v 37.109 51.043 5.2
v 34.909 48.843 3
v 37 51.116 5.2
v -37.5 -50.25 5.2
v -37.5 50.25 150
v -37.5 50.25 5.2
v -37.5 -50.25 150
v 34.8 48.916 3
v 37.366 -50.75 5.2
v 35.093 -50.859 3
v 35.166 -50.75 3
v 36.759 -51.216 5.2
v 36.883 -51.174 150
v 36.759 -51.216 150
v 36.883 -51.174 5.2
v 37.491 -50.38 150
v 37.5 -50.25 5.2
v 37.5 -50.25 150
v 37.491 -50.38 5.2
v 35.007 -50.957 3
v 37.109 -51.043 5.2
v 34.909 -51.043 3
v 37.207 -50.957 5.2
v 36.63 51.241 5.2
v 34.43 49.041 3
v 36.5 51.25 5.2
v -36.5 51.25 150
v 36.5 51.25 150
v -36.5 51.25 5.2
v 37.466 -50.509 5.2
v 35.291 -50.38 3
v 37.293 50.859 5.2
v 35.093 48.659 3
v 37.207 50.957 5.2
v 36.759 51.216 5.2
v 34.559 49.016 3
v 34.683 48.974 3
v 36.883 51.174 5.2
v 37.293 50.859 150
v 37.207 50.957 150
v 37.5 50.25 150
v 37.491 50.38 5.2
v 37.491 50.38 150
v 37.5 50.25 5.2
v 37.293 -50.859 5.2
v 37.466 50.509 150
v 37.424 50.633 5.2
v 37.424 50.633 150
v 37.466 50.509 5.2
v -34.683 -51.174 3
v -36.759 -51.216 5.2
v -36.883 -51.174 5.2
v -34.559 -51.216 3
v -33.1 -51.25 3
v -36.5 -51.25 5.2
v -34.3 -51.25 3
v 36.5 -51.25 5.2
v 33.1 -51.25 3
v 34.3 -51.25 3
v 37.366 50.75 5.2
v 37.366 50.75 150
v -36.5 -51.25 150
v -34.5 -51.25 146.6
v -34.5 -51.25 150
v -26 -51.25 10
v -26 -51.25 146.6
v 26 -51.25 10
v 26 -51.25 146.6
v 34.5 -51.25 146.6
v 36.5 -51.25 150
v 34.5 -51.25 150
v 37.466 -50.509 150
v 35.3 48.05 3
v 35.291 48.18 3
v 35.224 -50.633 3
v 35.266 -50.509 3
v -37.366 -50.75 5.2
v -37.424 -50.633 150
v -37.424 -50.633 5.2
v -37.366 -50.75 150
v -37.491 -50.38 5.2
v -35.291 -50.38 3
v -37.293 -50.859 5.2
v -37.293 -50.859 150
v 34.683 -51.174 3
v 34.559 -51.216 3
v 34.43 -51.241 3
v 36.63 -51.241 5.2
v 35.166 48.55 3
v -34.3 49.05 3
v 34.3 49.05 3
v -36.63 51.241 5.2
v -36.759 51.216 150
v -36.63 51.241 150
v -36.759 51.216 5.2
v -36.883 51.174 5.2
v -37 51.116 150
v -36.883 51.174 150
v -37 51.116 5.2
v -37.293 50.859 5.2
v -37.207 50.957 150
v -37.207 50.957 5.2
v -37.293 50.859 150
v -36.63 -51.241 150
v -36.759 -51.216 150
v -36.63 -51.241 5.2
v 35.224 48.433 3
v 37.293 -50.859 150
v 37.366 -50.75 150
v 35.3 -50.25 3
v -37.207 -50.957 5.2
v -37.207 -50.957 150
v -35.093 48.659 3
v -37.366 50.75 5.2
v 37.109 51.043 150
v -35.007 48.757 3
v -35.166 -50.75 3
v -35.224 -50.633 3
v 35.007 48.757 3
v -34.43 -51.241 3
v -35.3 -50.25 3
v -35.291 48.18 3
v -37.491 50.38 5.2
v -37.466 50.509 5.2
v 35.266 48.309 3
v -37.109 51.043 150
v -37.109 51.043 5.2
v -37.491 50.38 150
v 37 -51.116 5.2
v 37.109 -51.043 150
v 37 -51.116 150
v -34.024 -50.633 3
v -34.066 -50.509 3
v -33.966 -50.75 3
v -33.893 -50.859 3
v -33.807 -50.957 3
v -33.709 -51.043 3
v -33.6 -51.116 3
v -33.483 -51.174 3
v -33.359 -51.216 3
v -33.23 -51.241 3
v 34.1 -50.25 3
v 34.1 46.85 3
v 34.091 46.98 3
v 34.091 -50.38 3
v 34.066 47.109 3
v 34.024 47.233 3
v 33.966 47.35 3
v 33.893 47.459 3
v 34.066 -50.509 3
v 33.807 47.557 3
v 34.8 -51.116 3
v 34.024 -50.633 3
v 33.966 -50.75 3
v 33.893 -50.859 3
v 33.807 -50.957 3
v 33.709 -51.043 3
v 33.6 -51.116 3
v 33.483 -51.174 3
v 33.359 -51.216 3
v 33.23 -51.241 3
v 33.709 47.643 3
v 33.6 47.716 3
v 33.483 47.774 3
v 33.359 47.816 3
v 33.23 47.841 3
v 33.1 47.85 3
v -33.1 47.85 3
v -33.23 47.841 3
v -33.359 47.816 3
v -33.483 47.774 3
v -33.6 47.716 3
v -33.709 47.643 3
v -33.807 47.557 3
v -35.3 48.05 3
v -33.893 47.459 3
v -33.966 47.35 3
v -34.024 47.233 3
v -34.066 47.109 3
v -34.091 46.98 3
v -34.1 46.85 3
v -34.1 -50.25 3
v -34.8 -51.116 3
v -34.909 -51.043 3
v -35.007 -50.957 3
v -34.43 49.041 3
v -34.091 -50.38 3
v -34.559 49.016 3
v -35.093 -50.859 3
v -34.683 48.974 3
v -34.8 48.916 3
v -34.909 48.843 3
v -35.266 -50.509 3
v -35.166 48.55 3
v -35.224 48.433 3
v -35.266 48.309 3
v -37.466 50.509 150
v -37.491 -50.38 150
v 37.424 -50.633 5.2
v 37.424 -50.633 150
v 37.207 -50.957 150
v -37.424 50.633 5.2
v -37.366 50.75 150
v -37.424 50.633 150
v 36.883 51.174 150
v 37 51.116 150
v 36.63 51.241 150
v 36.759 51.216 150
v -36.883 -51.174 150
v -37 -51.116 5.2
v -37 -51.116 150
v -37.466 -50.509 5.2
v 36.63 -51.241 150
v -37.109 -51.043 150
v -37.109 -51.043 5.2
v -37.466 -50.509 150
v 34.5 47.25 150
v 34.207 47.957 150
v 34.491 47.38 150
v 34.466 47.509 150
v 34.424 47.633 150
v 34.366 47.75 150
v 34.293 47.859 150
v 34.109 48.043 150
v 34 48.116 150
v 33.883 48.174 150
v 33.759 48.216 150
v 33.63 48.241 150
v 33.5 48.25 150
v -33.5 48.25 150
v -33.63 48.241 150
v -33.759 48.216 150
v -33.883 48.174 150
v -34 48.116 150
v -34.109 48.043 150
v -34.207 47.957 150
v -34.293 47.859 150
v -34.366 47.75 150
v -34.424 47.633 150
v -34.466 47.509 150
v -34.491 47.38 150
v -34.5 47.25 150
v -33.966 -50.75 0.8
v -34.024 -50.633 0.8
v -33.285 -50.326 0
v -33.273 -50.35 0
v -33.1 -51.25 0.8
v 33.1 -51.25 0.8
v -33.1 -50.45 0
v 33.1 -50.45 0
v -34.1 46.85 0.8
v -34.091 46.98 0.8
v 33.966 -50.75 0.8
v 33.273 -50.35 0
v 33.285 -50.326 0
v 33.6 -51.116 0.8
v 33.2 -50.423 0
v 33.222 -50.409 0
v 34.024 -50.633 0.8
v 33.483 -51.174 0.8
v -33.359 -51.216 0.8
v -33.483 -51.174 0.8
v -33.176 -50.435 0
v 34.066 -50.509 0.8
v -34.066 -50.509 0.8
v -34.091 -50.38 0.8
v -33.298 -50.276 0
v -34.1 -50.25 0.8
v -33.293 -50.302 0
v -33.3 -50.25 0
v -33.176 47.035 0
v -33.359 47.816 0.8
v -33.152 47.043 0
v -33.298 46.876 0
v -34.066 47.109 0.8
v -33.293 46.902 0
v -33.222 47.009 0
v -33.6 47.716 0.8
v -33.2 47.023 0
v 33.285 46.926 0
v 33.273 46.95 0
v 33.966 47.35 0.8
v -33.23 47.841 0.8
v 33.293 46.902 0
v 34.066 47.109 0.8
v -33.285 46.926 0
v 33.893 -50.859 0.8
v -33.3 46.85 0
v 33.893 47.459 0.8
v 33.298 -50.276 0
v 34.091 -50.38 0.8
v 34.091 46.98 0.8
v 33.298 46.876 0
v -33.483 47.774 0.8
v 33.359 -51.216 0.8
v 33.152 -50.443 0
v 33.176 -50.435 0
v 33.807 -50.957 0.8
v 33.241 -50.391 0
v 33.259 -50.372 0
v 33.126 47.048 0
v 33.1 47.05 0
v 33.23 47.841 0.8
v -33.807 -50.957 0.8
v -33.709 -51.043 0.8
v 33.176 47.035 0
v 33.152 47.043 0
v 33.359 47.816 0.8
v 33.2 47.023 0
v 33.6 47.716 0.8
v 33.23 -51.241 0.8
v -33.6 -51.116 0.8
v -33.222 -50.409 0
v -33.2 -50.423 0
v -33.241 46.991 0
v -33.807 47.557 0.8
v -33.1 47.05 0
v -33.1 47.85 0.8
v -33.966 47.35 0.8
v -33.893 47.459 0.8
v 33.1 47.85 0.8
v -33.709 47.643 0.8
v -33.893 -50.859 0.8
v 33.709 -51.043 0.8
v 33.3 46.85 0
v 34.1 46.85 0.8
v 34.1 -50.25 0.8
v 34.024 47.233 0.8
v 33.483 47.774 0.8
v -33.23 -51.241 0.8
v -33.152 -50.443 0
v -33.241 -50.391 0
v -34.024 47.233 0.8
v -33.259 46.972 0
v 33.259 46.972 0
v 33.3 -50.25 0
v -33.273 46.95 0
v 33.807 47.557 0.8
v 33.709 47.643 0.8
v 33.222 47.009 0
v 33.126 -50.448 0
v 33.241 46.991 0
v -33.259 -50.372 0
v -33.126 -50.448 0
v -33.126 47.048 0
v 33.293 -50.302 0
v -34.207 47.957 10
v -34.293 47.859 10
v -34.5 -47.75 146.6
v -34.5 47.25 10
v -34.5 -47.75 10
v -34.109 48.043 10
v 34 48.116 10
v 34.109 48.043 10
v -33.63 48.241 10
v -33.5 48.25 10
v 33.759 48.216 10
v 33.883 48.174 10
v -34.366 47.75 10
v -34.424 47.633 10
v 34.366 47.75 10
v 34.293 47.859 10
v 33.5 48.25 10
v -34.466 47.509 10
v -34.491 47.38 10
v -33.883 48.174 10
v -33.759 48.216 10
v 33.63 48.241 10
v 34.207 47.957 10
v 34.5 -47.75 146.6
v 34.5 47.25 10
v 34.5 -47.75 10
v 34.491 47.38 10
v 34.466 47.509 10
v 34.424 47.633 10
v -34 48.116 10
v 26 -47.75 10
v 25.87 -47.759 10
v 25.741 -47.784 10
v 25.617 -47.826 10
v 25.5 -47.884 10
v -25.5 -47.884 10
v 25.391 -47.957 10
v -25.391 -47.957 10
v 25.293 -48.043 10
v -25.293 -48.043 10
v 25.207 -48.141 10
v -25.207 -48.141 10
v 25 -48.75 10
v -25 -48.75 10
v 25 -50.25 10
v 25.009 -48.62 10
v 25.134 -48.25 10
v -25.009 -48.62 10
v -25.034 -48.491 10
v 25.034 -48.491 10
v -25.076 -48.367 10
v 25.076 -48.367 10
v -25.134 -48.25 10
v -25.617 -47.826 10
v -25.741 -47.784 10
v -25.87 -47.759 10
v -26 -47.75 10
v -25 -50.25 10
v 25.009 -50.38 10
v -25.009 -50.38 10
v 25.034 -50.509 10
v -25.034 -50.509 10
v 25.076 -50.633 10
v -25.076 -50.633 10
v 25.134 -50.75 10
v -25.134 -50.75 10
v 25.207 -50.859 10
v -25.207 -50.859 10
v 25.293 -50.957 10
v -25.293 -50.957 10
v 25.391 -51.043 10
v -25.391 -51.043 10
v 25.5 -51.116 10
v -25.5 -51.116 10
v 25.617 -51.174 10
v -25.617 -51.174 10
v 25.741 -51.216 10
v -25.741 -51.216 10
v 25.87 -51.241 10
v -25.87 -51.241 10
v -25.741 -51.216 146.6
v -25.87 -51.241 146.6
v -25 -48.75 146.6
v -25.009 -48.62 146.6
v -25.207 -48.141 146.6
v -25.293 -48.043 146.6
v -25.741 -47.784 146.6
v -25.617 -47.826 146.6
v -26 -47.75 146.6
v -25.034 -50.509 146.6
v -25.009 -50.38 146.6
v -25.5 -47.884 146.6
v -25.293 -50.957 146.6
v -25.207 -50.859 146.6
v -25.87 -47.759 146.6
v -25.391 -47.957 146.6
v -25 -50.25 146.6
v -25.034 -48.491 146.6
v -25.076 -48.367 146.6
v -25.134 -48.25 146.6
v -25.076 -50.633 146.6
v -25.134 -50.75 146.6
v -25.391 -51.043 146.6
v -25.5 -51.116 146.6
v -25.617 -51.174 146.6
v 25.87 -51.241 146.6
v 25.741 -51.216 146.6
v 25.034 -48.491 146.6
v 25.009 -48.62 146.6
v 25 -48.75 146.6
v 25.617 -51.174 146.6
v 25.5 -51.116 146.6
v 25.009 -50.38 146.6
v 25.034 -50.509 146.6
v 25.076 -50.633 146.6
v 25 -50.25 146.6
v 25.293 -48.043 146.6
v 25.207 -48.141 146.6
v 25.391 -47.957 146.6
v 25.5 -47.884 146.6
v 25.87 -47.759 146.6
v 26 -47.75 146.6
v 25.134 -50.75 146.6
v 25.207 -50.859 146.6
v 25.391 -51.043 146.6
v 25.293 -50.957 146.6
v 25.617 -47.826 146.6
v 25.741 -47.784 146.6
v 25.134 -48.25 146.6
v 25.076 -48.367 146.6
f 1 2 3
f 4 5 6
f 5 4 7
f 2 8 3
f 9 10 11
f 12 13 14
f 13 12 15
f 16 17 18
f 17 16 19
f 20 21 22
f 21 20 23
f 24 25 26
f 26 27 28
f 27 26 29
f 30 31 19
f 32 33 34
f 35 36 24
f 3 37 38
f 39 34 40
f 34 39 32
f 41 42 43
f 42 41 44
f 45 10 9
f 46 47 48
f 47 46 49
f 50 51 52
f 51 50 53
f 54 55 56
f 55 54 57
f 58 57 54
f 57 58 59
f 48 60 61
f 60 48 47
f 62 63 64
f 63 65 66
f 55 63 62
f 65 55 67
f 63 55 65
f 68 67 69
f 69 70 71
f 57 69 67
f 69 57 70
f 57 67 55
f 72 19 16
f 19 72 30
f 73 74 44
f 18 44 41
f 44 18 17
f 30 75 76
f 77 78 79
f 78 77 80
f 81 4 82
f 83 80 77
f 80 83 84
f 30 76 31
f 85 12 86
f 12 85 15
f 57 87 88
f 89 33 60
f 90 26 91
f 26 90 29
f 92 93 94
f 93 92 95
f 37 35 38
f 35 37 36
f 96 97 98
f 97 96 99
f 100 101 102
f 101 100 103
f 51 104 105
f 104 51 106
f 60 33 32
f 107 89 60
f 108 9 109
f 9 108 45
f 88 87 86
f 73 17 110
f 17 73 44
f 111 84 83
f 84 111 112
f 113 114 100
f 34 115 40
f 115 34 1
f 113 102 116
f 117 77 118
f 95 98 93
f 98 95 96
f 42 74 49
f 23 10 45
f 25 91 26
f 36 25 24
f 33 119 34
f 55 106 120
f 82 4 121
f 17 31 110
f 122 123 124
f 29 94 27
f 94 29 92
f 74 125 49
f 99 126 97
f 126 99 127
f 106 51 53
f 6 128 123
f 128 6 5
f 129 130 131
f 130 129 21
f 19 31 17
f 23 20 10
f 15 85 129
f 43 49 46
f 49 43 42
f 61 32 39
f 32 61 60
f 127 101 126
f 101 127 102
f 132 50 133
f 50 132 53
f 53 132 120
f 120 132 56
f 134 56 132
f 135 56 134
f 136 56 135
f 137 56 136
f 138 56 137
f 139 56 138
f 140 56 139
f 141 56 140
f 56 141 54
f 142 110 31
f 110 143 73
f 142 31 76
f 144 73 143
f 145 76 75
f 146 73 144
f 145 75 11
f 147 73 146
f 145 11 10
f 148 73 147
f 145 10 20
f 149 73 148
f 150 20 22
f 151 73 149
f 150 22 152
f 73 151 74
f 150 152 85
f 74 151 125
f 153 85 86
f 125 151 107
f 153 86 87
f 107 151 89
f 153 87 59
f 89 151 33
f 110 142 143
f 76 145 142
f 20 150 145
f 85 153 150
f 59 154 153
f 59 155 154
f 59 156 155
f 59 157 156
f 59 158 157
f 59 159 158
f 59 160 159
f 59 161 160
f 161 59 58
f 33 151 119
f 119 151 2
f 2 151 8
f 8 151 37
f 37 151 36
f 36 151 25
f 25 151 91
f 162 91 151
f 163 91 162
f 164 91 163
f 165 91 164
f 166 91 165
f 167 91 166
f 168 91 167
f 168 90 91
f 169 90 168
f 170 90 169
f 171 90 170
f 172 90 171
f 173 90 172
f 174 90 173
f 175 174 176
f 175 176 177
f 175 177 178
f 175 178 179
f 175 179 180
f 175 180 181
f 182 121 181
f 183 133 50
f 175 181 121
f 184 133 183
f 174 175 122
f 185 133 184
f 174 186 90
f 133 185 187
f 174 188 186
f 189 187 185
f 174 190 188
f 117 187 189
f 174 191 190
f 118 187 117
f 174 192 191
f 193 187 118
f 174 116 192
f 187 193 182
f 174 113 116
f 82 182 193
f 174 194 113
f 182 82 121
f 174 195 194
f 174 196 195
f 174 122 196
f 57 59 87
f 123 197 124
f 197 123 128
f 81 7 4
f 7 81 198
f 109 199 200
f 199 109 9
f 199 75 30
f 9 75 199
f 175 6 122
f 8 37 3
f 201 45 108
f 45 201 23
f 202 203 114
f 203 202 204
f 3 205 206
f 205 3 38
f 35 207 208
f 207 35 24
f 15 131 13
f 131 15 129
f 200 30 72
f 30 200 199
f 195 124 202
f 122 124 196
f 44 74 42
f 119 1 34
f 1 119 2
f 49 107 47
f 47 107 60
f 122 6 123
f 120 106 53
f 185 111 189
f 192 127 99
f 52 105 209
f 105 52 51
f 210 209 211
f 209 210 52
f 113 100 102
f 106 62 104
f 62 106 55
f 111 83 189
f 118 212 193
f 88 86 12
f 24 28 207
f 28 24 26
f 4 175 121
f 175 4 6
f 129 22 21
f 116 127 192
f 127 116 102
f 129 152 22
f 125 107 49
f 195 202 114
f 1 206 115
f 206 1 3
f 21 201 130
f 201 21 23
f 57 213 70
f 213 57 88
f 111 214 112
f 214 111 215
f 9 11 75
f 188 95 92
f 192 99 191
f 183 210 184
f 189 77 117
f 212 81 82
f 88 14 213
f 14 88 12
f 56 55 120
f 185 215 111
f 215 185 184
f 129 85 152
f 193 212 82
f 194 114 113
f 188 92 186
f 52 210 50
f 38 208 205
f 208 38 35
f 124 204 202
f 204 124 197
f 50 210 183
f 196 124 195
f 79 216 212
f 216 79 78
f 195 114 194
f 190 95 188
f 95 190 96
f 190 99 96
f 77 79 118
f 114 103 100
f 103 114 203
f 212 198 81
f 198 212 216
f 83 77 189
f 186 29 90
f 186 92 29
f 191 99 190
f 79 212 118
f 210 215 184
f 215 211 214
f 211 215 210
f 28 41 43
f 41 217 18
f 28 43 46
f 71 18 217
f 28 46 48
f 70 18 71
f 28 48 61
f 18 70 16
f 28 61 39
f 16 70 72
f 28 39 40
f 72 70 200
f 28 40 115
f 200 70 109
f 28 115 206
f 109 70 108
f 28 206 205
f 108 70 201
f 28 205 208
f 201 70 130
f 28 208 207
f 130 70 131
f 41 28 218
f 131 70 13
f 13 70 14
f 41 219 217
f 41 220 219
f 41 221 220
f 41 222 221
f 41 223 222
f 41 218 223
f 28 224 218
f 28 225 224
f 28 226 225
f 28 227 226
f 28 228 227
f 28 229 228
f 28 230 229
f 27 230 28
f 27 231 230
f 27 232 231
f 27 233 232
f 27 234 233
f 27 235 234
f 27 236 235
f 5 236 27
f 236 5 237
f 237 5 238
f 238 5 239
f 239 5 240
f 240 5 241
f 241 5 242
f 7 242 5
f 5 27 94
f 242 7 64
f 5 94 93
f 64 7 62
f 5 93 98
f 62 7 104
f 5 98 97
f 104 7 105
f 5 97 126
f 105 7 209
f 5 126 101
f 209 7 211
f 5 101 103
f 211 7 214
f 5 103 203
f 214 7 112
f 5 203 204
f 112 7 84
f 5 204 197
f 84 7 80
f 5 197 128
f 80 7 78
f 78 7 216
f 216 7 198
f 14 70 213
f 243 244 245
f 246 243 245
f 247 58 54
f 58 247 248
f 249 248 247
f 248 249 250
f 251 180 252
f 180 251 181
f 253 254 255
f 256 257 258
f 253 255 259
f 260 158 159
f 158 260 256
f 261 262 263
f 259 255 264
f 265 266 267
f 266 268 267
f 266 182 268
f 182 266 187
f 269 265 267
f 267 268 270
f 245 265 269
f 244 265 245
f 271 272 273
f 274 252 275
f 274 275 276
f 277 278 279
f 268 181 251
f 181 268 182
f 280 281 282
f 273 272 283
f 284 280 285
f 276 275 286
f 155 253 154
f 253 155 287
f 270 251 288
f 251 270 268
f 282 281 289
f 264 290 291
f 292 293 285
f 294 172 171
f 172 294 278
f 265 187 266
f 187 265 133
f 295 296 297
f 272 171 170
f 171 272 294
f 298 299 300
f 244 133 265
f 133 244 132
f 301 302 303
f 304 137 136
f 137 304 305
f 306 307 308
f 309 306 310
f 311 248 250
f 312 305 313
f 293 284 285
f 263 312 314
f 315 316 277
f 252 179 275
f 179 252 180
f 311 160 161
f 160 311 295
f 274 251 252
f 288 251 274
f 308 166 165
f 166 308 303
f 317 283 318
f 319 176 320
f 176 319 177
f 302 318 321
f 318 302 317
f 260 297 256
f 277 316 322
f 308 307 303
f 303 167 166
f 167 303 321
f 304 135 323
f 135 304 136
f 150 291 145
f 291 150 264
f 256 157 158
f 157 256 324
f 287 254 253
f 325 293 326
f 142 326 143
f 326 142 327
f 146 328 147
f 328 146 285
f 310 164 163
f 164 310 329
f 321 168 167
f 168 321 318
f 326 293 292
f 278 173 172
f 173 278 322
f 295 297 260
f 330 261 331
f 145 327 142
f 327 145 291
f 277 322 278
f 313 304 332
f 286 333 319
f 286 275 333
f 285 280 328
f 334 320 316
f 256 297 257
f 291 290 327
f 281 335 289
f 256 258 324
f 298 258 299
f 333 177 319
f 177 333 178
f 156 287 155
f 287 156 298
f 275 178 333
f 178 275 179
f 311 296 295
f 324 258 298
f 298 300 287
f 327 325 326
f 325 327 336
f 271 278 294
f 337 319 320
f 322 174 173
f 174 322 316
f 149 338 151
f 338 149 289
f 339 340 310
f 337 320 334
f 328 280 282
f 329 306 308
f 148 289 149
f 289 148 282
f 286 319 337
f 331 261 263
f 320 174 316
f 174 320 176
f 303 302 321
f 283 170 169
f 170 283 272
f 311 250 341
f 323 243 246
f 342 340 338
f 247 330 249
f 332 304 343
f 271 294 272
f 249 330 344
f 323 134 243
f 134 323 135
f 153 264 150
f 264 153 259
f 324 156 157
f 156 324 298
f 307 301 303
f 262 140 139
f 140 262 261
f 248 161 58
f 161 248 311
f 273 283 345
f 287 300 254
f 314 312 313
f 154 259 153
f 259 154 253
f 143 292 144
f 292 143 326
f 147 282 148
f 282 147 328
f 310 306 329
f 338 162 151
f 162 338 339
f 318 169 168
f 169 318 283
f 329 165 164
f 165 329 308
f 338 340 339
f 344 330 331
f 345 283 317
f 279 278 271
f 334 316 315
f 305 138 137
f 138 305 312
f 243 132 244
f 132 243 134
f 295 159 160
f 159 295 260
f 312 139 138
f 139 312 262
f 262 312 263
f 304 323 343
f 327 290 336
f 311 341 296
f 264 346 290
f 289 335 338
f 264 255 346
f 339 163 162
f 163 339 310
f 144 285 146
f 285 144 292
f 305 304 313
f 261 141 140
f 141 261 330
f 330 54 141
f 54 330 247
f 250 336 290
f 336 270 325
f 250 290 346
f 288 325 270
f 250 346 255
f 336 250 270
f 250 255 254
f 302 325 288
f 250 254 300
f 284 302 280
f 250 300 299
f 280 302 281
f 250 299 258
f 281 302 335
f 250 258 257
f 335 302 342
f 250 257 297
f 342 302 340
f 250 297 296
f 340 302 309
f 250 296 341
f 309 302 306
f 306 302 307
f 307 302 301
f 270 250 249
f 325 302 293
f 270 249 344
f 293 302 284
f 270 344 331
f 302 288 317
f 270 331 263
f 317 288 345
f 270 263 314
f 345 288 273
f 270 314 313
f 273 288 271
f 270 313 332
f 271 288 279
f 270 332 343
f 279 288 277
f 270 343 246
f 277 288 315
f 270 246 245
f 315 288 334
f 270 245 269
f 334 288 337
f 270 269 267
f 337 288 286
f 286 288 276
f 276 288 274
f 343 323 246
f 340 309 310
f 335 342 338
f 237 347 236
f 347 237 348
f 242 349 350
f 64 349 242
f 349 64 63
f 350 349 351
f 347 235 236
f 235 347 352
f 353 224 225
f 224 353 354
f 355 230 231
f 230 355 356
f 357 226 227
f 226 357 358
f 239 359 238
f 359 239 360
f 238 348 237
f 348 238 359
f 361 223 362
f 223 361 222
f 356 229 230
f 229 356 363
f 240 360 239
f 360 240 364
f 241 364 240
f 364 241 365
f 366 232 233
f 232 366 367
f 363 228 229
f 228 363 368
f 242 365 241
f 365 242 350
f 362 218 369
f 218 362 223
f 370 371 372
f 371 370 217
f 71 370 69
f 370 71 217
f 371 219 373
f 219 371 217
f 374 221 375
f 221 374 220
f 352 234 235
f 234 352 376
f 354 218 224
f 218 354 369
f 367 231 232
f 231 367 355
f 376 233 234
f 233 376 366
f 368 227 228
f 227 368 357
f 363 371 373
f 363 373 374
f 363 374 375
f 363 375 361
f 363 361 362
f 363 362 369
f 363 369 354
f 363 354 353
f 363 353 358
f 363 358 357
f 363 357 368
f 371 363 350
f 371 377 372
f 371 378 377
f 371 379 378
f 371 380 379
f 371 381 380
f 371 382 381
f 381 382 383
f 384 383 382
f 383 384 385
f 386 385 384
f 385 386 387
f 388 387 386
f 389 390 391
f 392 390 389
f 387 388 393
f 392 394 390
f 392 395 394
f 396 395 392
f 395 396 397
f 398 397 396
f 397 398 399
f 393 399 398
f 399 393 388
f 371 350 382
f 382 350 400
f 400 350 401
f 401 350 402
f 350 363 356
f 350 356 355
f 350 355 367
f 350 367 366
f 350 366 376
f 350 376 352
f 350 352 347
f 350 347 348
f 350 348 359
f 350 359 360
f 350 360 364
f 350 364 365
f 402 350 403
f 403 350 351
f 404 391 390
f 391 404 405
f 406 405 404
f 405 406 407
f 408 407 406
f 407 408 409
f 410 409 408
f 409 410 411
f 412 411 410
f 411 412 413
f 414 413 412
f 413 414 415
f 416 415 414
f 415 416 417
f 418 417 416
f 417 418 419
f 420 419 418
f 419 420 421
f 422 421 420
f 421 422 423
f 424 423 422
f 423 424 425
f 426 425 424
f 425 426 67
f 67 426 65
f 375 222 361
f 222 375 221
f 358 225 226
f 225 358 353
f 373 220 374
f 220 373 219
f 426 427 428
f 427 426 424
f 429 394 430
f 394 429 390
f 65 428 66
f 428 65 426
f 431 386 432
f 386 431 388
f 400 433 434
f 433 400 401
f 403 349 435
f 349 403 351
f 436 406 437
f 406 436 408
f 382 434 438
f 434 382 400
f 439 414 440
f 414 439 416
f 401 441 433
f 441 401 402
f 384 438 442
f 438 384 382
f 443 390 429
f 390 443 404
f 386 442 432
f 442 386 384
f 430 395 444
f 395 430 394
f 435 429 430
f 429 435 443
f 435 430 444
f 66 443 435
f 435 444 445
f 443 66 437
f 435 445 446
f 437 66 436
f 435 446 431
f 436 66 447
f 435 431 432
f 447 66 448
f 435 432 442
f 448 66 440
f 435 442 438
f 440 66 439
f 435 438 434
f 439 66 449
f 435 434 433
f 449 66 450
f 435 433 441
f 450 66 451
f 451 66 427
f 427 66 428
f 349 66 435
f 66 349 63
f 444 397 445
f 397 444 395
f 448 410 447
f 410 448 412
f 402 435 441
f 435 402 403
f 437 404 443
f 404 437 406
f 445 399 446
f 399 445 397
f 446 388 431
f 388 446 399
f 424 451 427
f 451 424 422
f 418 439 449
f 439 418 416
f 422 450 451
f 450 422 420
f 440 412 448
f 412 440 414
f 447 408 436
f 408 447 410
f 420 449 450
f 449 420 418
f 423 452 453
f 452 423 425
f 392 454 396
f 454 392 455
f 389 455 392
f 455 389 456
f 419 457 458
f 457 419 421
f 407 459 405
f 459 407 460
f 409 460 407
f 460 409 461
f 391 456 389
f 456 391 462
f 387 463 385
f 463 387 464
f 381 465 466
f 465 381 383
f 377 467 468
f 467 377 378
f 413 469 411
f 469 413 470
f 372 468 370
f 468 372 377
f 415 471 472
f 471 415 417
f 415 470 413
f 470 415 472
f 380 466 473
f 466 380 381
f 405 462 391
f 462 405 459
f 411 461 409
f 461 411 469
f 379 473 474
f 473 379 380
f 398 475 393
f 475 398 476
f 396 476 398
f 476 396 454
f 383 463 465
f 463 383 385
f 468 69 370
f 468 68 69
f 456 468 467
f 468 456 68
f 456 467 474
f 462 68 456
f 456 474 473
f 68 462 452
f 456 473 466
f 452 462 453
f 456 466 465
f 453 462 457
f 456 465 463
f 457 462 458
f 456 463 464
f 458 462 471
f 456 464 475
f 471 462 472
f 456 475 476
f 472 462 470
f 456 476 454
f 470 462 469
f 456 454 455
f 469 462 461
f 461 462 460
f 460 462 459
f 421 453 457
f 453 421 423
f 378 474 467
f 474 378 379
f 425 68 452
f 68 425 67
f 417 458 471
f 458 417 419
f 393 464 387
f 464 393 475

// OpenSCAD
// sleeve-tower-01.scad
//
// TORRE de penny sleeves DEITADOS: bandeja aberta em cima, 75 x 102.5 x 150mm,
// com três paredes maciças (duas laterais + fundo), a frente aberta num SULCO
// vertical que vai do piso ao topo e duas ABAS EM L nos cantos da frente que
// seguram a pilha. Piso de 10mm que é lastro e, embaixo dele, um RESSALTO de
// empilhamento — a torre de cima senta na boca da de baixo.
//
// COMO SE MANUSEIA (é uma torre de bancada, não uma caixa de deck):
//   1. A torre fica DE PÉ na mesa, com o sulco virado pra você. O sleeve entra
//      DEITADO (os 66 no eixo X, os 91 no eixo Y) e a pilha cresce em Z: são
//      140mm de curso, do piso (z=10) até a boca (z=150).
//   2. ABASTECER: pela BOCA, que é aberta e livre nos 69.0 x 99.5 inteiros —
//      nada estrangula a entrada, você despeja o maço de sleeves de cima.
//   3. TIRAR: pelo SULCO da frente. Você enfia dois dedos nos 50mm de vão, na
//      altura do topo da pilha, pinça o sleeve e puxa pra frente. O sleeve tem
//      66.7 de largura e o sulco tem 50, então ele NÃO sai reto: ele passa
//      arqueando entre as duas abas — que é exatamente o que impede a pilha
//      inteira de escorregar pra fora quando você puxa um. Ver a nota
//      "SLEEVE VAZIO x CARTA ENSLEEVADA" mais abaixo, porque isso muda tudo.
//   4. EMPILHAR: a torre de cima desce na boca da de baixo. O ressalto de 3mm
//      entra na boca com 0.4/lado e a torre assenta no aro. Sulco com sulco:
//      não foi desenhada chaveta nenhuma, mas o ressalto é assimétrico em Y
//      (rente na frente, recuado 0.4 atrás) e isso já trava — virada 180 graus
//      ela bate no fundo e fica boiando 3mm alta, óbvio na mão. Duas empilhadas
//      dão 297mm de coluna, não 300: a de cima afunda os 3mm do ressalto.
//
// DE ONDE VEIO, E POR QUE ESTE ARQUIVO NÃO É O ORIGINAL
// Referência de geometria: `../../organizadores_tcg/PennySleeveHolderStacking_V2.3mf`
// ("Stackable Penny Sleeve Holder", Sazabi, MakerWorld, MakerWorld Exclusive
// License — arquivo de TERCEIRO, NÃO redistribuível; é por essa família de
// licenças que o repo virou privado em 2026-08-09). Este .scad é reconstrução
// paramétrica própria: nada da malha foi copiado, só medidas de engenharia
// reversa. Medido na malha da variante Stackable (3D/Objects/object_1.model,
// 296 vértices, origem no centro do bbox):
//   envelope 73.00 x 101.50 x 45.00  (x ±36.50, y ±50.75, z ±22.50)
//   parede 2.00 nas laterais (face interna x ±34.50 -> vão 69.00)
//   parede 2.00 no fundo (face interna y = 48.75 -> vão 99.50)
//   piso: topo da cavidade em z = 10.00 (níveis de z: 0, 3, 10, ...)
//   ressalto de empilhamento z 0..3, contorno 68.6 x 99.3 (0.2/lado de folga)
//   abas em L: y -50.75..-47.25 (3.5 de profundidade), aresta interna em
//     x = ±25.00 na FACE DA FRENTE, abrindo em filete até ±28.83 no fundo da
//     aba -> o vão do sulco na cara da peça é 50.00 = 68.5% dos 73.0
//   quinas verticais externas e arestas do sulco arredondadas em r ≈ 1.0
//
// O QUE MUDA NESTA VARIANTE (tudo decidido com o usuário)
//   1. ALTURA 45 -> 150. O piso segue com 10.0, então a cavidade vai de 35 pra
//      140mm de curso de pilha. Piso pesado é bem-vindo: é o lastro que segura
//      uma peça de 150mm de pé (ver ESTABILIDADE).
//   2. PAREDE 2.0 -> 3.0, CRESCENDO PRA FORA. A 150mm de altura uma parede de
//      2mm empena e é mole. Os 3mm saem do envelope externo (73.0 -> 75.0 em X
//      e 101.5 -> 102.5 em Y), NUNCA da cavidade: com 3mm pra dentro o vão
//      cairia pra 67.0 e um penny sleeve de ~66.7 não entraria mais.
//   3. PAREDE MACIÇA — PEDIDO LITERAL DO USUÁRIO. Sem colmeia, sem furo, sem
//      baixo relevo. Isto SOBREPÕE a regra 5 (identidade visual hexagonal) do
//      CLAUDE.md, de propósito e por escrito, não é esquecimento. O preço está
//      medido e declarado embaixo, em MATERIAL E TEMPO.
//   4. SULCO = 2/3 DA LARGURA, do piso ao topo, sem travessa nenhuma. Com o
//      externo de 75.0 dá 50.0mm exatos — que por coincidência é o mesmo vão
//      que a referência tem na cara da peça.
//   5. ABAS MAIORES: retorno de 9.5mm pra dentro da face interna da lateral,
//      contra os 7.25 da referência. Não é número escolhido, é consequência do
//      item 4: sulco de 50 (x ±25) com a face interna da lateral em x ±34.5 dá
//      34.5 - 25.0 = 9.5 de retorno. Mais aba = pilha mais presa.
//   6. FOLGA DO RESSALTO 0.2 -> 0.4/LADO, com chanfro de entrada de 0.8. Regra
//      6 do CLAUDE.md, aprendida no deckbox-02 impresso, que TRAVOU no meio do
//      curso: peça alta impressa em pé faz barriga pra dentro, a boca sai
//      subdimensionada, o sólido sai superdimensionado e ainda tem pé de
//      elefante. Aos 150mm isso é pior que aos 45 da referência.
//   7. ABA CORTADA NO TOPO. O retorno da aba em L para 3.4mm abaixo da boca
//      (z=146.6) — ver ABA CORTADA NO TOPO, é o que deixa o ressalto ser um
//      prisma limpo e mata o pior balanço da peça.
//
// ATENÇÃO — A MEDIDA DO SLEEVE NÃO É DE RÉGUA
// A cavidade 69.0 x 99.5 NÃO foi medida no sleeve do usuário: ela veio da
// malha da referência, que é peça impressa e aprovada por terceiros. É a mesma
// ressalva que o README de organizadores_tcg faz pro penny-holder-01. Vale
// como ponto de partida (peça impressa que funciona > catálogo), mas o dia em
// que o sleeve for medido com régua, a correção é um include de 3 linhas:
//   cav_w_override = <largura + 2>; cav_d_override = <altura + 2>;
//   include <sleeve-tower-01.scad>
// e o modelo inteiro se refaz — externo, sulco, abas e ressalto são todos
// derivados desses dois números.
//
// SLEEVE VAZIO x CARTA ENSLEEVADA (a cinemática de tirar, com número)
// O sulco tem 50.0mm e o conteúdo tem ~66.7 de largura: 16.7mm a menos, 8.35
// de mordida em cada aba. Isso quer dizer que:
//   - SLEEVE VAZIO (filme mole): sai pelo sulco arqueando, sem esforço. É pra
//     isso que a peça existe e é o que a referência faz.
//   - CARTA JÁ ENSLEEVADA (rígida, a carta não dobra): NÃO passa pelo sulco.
//     Sai pela BOCA, por cima — que é aberta e livre. O sulco vira janela de
//     ver o nível da pilha e de empurrar a pilha pra cima com o dedo.
// Nenhuma das duas é defeito, mas é bom saber qual das duas você comprou antes
// de encher a torre. Quem quiser a carta enseleevada saindo pela frente tem que
// abrir o sulco pra ~70 (open_frac_override = 0.93) e aí perde a aba.
//
// ABA CORTADA NO TOPO (por que o retorno para em z=146.6)
// O ressalto da torre de cima ocupa os 3mm de cima da cavidade da torre de
// baixo. Se a aba em L subisse até a boca, o ressalto teria que ser recortado
// em volta dela — e esse recorte deixaria, na cara da frente, dois trechos de
// 12.9 x 3.9mm de laje horizontal boiando no ar em z=3 (é o que a referência
// faz; o perfil dela vem com suporte LIGADO). Cortar 3.4mm do RETORNO da aba
// (só do retorno: a parede lateral sobe inteira até 150) resolve os dois lados:
//   - o ressalto vira um prisma retangular limpo, rente à frente, sem recorte;
//   - o único balanço que sobra na peça é o degrau de 1.2mm do assento.
// O que se perde: os 3.4mm de cima da pilha ficam sem aba na frente. Não custa
// nada — com uma torre empilhada em cima, esses 3mm estão ocupados pelo
// ressalto dela, e sem torre em cima a pilha nunca chega rente à boca.
//
// ASSENTO DO EMPILHAMENTO — O PROBLEMA DA SAIA, E COMO FOI RESOLVIDO
// Parede 3.0 + folga 0.4 = 3.4mm de saia em volta do ressalto, a 3mm da mesa
// (na referência eram 2.2). 3.4mm de laje horizontal saindo do nada é balanço
// puro: a camada de z=3 avançaria 3.4mm de uma vez sobre o vazio e a superfície
// que pende é justamente a que faz o assento do empilhamento. Foram avaliadas
// três saídas:
//   (a) degrau reto de 3.4 ....... assento perfeito, superfície pendurada feia
//                                  e ondulada — e ondulação no assento é torre
//                                  balançando.
//   (b) chanfro de 45 puro ....... imprime lindo e NÃO TEM ASSENTO: a torre de
//                                  cima escorregaria na rampa até cunhar na
//                                  aresta interna do aro, abrindo a parede.
//   (c) ADOTADA: 1.2mm de ledge plano + 2.2mm a 45. O ledge dá um assento
//                                  definido e o resto sobe em rampa. O balanço
//                                  cai de 3.4 pra 1.2mm — quase metade do que
//                                  a referência já imprime hoje.
// O aro da torre de baixo tem 3.0 de largura (x 34.5..37.5); o ledge da de cima
// pousa em x 34.1..35.3. Sobreposição REAL de contato = 0.8mm num anel contínuo
// em U de ~276mm de perímetro = ~220mm² de apoio. Pra uma torre cheia (~2.5N)
// dá ~0.011MPa: o assento é geométrico, não estrutural, e 0.8mm contínuo é
// assento de sobra. Por isso também NÃO existe funil na boca: um funil de 0.6
// comeria justo esses 0.8 e o assento sumiria. Quem guia o encaixe é o chanfro
// de 0.8 embaixo do ressalto, sozinho.
//
// CURSO COMPLETO DO EMPILHAMENTO (simulado com número antes de dar por bom —
// lição do elevador do deckbox-01, que tinha 10mm de vão pra 48mm de curso):
//   separação 3.00mm .. a base do ressalto (66.6 x 97.5, já descontado o
//                       chanfro) procura a boca (69.0 x 99.5). Aceita 1.2mm de
//                       erro lateral de mão em X — é a folga de 0.4 mais o
//                       chanfro de 0.8.
//   separação 2.20mm .. o chanfro de 45 termina e entra o RETO. Daqui pra baixo
//                       são 2.2mm de engate reto com 0.4/lado: a torre já está
//                       alinhada e só desce.
//   separação 0.00mm .. assenta. O batente é o LEDGE de 1.2mm da torre de cima
//                       contra o ARO de 3.0 da de baixo (0.8mm de contato real),
//                       nunca o fundo do ressalto contra sleeve.
//   com a torre cheia . o ressalto desce até z=147 da torre de baixo, ou seja
//                       come os 3mm de cima da cavidade: o curso útil vira 137
//                       (e não 140) quando há torre empilhada em cima. Encher
//                       além disso não trava nada — só levanta a torre de cima.
//   PROVAS NA GEOMETRIA (rodadas, não deduzidas):
//     part="fit" (passo 147) ....... VAZIO. Encaixa sem tocar em nada.
//     passo 146 (1mm fundo demais) . 382mm³ de interferência em z 146..150. É
//                                    o assento parando a descida — o teste tem
//                                    dente, não é vazio por acidente.
//     virada 180 graus ............. 589mm³ em y 48.05..51.25, z 147..150: o
//                                    ressalto bate no FUNDO, 3mm de mordida na
//                                    largura inteira. Não existe chaveta neste
//                                    modelo, mas o contorno assimétrico do
//                                    ressalto (rente na frente, recuado atrás)
//                                    já é uma: empilhar virado não entra nem
//                                    "quase", a torre fica boiando 3mm alta.
//
// ESTABILIDADE (é o preço de 150mm, e o usuário aceitou de olho aberto)
// Centro de massa MEDIDO na malha exportada: (0, 4.85, 52.11) — o piso de 10mm
// é 37% do material e puxa tudo pra baixo. Uma torre sozinha tomba com
//   35.7 graus pro lado | 47.1 pra frente | 41.7 pra trás — estável de verdade.
// DUAS EMPILHADAS: 297mm de coluna (o passo é 147, não 150 — a de cima afunda
// os 3mm do ressalto), centro de massa em z=125.6, e o ângulo despenca pra
//   16.6 graus pro lado | 24.1 pra frente | 20.3 pra trás.
// E isso VAZIA: cheia, o conteúdo sobe o centro de massa mais ainda. Duas
// empilhadas é uma coluna que um esbarrão derruba — usar encostada na parede ou
// na prateleira, não solta no meio da mesa.
//
// MATERIAL E TEMPO (o preço da parede maciça, item 3)
// 197.3cm³ de SÓLIDO, medido na malha exportada. Só as três paredes são 115cm³:
// 3.0 x 150 x (2 x 102.5 + 69). Fatiado com 2 perímetros e 15% de grade a
// estimativa é ~120cm³ de filamento (~150g) e ~7h — é peça grande, não é
// impressão de tarde, e o número real quem dá é o fatiador. Pra comparar: o
// penny-holder-01, mesmo envelope de 150mm mas todo em colmeia, tem 78cm³.
// Se incomodar, os botões honestos são, nesta ordem:
//   - baixar wall pra 2.6 (o mesmo do penny-holder-01) -> ~-20cm³;
//   - baixar a altura (total_h_override = 100) -> a peça inteira encolhe;
//   - NÃO mexer no infill do piso pra baixo: ali o peso é feature, é o lastro.
// Colmeia resolveria de verdade, e é justamente o que o usuário não quer.
//
// IMPRIME EM PÉ, NA ORIENTAÇÃO DE USO, SEM SUPORTE. Inventário de balanço:
//   ressalto (z 0..3) .......... prisma vertical na mesa, 6.7 mil mm² de 1ª
//                                camada maciça. Não precisa de brim.
//   chanfro do ressalto ........ 45 graus com o material CRESCENDO pra fora
//                                subindo: cada camada apoia na de baixo.
//   ledge do assento (z=3) ..... 1.2mm de laje horizontal em anel — ÚNICO
//                                balanço plano da peça. Fica a 3mm da mesa.
//   saia (z 3..5.2) ............ 45 graus.
//   paredes .................... verticais, maciças, dos 3mm de espessura.
//   abas em L .................. prismas verticais, arrancam do piso em z=10.
//   topo das abas (z=146.6) .... face horizontal virada pra CIMA, não é balanço.
//   piso da cavidade (z=10) .... face horizontal virada pra cima.
//   NENHUMA PONTE em lugar nenhum: a frente é aberta do piso ao topo e não há
//   uma única travessa horizontal na peça.
//
// EXPORTS CANÔNICOS (caminhos absolutos, flatpak — ver CLAUDE.md):
//   flatpak run org.openscad.OpenSCAD -o stl/sleeve-tower-01.stl        -D 'part="tower"' sleeve-tower-01.scad
//   flatpak run org.openscad.OpenSCAD -o 3mf/sleeve-tower-01-plate.3mf  -D 'part="plate"' sleeve-tower-01.scad
//   flatpak run org.openscad.OpenSCAD -o 3mf/sleeve-tower-01-par.3mf    -D 'part="par"'   sleeve-tower-01.scad
//   DIAGNÓSTICO (não vai pra 3mf/):
//     part="fit"    -> as duas torres empilhadas: TEM QUE SAIR VAZIO
//     part="stack2" -> as duas empilhadas em união, só pra render
//
// VARIANTE: por INCLUDE, nunca por -D (os *_override só existem via -D e o
// ternário is_undef() é avaliado antes). Ex.: um arquivo com
//   total_h_override = 100; include <sleeve-tower-01.scad>
// dá a torre de 100mm com todo o resto igual.

/* [Peça] */
// tower | plate | par | fit | stack2
part = "tower";

/* [Cavidade — o que a torre guarda] */
// mm — vão interno em X, a LARGURA do sleeve deitado. 69.0 = medida de engenharia reversa da referência impressa, NÃO é régua (ver o aviso no cabeçalho). NUNCA estreitar: parede mais grossa cresce pra fora
cav_w = is_undef(cav_w_override) ? 69.0 : cav_w_override;
// mm — vão interno em Y, o COMPRIMENTO do sleeve deitado. Mesma origem e mesma ressalva do cav_w
cav_d = is_undef(cav_d_override) ? 99.5 : cav_d_override;
// mm — espessura de UM penny sleeve vazio; só serve pra estimar capacidade, não entra em geometria nenhuma
sleeve_t = 0.08;

/* [Envelope] */
// mm — altura total da torre, do chão do ressalto à boca. 150 = pedido do usuário ("as paredes sobem até 15cm")
total_h = is_undef(total_h_override) ? 150.0 : total_h_override;
// mm — parede MACIÇA das duas laterais e do fundo. 3.0 e não os 2.0 da referência porque a 150mm de altura 2mm empena; cresce pra FORA, o vão interno não muda
wall = is_undef(wall_override) ? 3.0 : wall_override;
// mm — piso total, do chão ao fundo da cavidade (inclui o ressalto). É o lastro que segura a torre em pé
floor_h = 10.0;

/* [Frente — o sulco e as abas em L] */
// fração da largura EXTERNA que o sulco ocupa. 2/3 = pedido do usuário; com o externo de 75.0 dá 50.0mm de vão
open_frac = is_undef(open_frac_override) ? 2 / 3 : open_frac_override;
// mm — profundidade da aba em L no eixo Y (medida na referência)
tab_depth = is_undef(tab_depth_override) ? 3.5 : tab_depth_override;

/* [Empilhamento] */
// mm — altura do ressalto que entra na boca da torre de baixo (medida na referência)
boss_h = 3.0;
// mm — folga do ressalto na boca, POR LADO. 0.4 e não os 0.2 da referência: regra 6 do CLAUDE.md, lição do deckbox-02 que travou. Peça de 150mm em pé empena mais que uma de 45
stack_clear = is_undef(stack_clear_override) ? 0.4 : stack_clear_override;
// mm — chanfro de 45 na aresta de baixo do ressalto. É ele sozinho que guia o encaixe (não há funil na boca, ele comeria o assento): aceita stack_clear + este valor de erro de mão
boss_lead = 0.8;
// mm — largura do LEDGE plano do assento, em volta do ressalto. O resto da saia sobe em rampa de 45. Tem que ser MENOR que wall + stack_clear, senão a rampa fura a face externa
seat_ledge = 1.2;

/* [Acabamento] */
// mm — raio das quinas verticais externas e das arestas do sulco (medido na referência; é o que a mão pega)
corner_r = 1.0;
// mm — raio dos cantos verticais internos da cavidade (só tira o canto vivo; o bico da impressora já arredonda sozinho)
inner_r = 1.0;

/* [Chapa] */
// mm — vão entre peças em part="par"
plate_gap = 6.0;

/* [Oculto] */
$fn = 48;

// ---------------------------------------------------------------- Derivados
ext_w      = cav_w + 2 * wall;              // 75.0  — externo em X (parede dos DOIS lados)
ext_d      = cav_d + wall;                  // 102.5 — externo em Y (parede só no fundo, a frente é aberta)
cav_h      = total_h - floor_h;             // 140.0 — curso da pilha, do piso à boca
slab_h     = floor_h - boss_h;              // 7.0   — laje cheia acima do ressalto

y_front    = -ext_d / 2;                    // -51.25 — plano da frente
y_back     =  ext_d / 2;                    //  51.25 — plano do fundo
y_cav_back =  y_back - wall;                //  48.25 — face interna do fundo
x_wall_in  =  cav_w / 2;                    //  34.50 — face interna da lateral

open_w     = ext_w * open_frac;             // 50.0  — vão do sulco
x_open     = open_w / 2;                    // 25.0  — aresta interna da aba
tab_return = x_wall_in - x_open;            // 9.5   — quanto a aba avança pra dentro da lateral
tab_x_out  = ext_w / 2 - corner_r;          // 36.5  — a aba morre dentro da parede lateral
tab_top    = total_h - boss_h - stack_clear;// 146.6 — o retorno da aba para aqui (ver ABA CORTADA NO TOPO)

boss_w     = cav_w - 2 * stack_clear;       // 68.2  — ressalto em X
boss_yb    = y_cav_back - stack_clear;      // 47.85 — fundo do ressalto (a frente é rente ao plano da frente)
boss_d     = boss_yb - y_front;             // 99.1  — ressalto em Y
boss_cy    = (y_front + boss_yb) / 2;       // -1.70 — centro do ressalto em Y
boss_grip  = boss_h - boss_lead;            // 2.2   — engate RETO do empilhamento
boss_catch = stack_clear + boss_lead;       // 1.2   — erro lateral de mão aceito na hora de empilhar
stack_pitch= total_h - boss_h;              // 147.0 — passo do empilhamento: a torre de cima
                                            //         AFUNDA boss_h na de baixo, então duas
                                            //         empilhadas dão 297 e não 300

seat_w     = boss_w + 2 * seat_ledge;       // 70.6  — contorno do assento em X
seat_yb    = boss_yb + seat_ledge;          // 49.05 — contorno do assento no fundo
seat_d     = seat_yb - y_front;             // 100.3
seat_cy    = (y_front + seat_yb) / 2;       // -1.10
skirt_ramp = wall + stack_clear - seat_ledge; // 2.2 — rampa de 45 da saia (igual em X e Y por construção)
skirt_top  = boss_h + skirt_ramp;           // 5.2   — onde o externo cheio começa
// o aro da torre de baixo vai de x_wall_in a ext_w/2 (largura wall) e o ledge
// da de cima de boss_w/2 a seat_w/2: a sobreposição real é seat_ledge - stack_clear
seat_grip  = seat_ledge - stack_clear;      // 0.8   — largura de contato REAL do ledge sobre o aro

cav_h_stacked = cav_h - boss_h;             // 137.0 — curso útil com torre empilhada em cima
cap_loose  = floor(cav_h / sleeve_t);       // ~1750 — ESTIMATIVA, sleeve_t não é régua
cap_stacked= floor(cav_h_stacked / sleeve_t);

assert(total_h <= 180, "ALTURA ESTOURA A A1 MINI (180)");
assert(ext_w <= 170 && ext_d <= 170, "FOOTPRINT ESTOURA O ALVO DE 170 DA A1 MINI");
assert(seat_ledge < wall + stack_clear, "seat_ledge grande demais: a rampa da saia fura a face externa");
assert(seat_grip > 0.4, "assento de menos: o ledge nao pousa no aro da torre de baixo");
assert(boss_grip > 1.0, "engate reto de menos: baixe boss_lead ou suba boss_h");
assert(tab_return > 4.0, "aba curta demais pra segurar a pilha: baixe open_frac");
assert(open_w > 40.0, "sulco estreito demais pra entrar dois dedos: suba open_frac");
assert(skirt_top < floor_h, "a rampa da saia invade a cavidade: baixe wall ou suba floor_h");
assert(tab_depth > 2 * corner_r, "aba mais rasa que os dois raios de canto");

echo(str("sleeve-tower-01  externo ", ext_w, " x ", ext_d, " x ", total_h, " mm"));
echo(str("  cavidade ", cav_w, " x ", cav_d, " x ", cav_h,
         "   piso ", floor_h, " (ressalto ", boss_h, " + laje ", slab_h, ")"));
echo(str("  sulco ", open_w, " mm (", open_frac * 100, "% do externo) do piso ao topo",
         "   aba ", tab_depth, " de fundura, retorno ", tab_return,
         ", topo em z=", tab_top));
echo(str("  ressalto ", boss_w, " x ", boss_d, " x ", boss_h,
         "  folga ", stack_clear, "/lado  chanfro ", boss_lead,
         "  engate reto ", boss_grip, "  aceita ", boss_catch, " de erro de mao"));
echo(str("  assento: ledge ", seat_ledge, " + rampa ", skirt_ramp,
         " a 45 (externo cheio a partir de z=", skirt_top, ")",
         "  contato real sobre o aro ", seat_grip, " mm"));
echo(str("  passo do empilhamento ", stack_pitch,
         " mm -> duas torres = ", 2 * stack_pitch + boss_h, " mm de coluna"));
echo(str("  curso de pilha ", cav_h, " mm solta / ", cav_h_stacked,
         " com torre empilhada  -> ~", cap_loose, " / ~", cap_stacked,
         " sleeves vazios a ", sleeve_t, "mm — ESTIMATIVA, nao e regua"));

// -------------------------------------------------------------------- Peças
if      (part == "tower")  tower();
else if (part == "plate")  tower();
else if (part == "par")    for (s = [-1, 1]) translate([s * (ext_w + plate_gap) / 2, 0, 0]) tower();
else if (part == "fit")    fit_check();
else if (part == "stack2") { tower(); translate([0, 0, stack_pitch]) tower(); }
else                       assert(false, "part desconhecido");

// ------------------------------------------------------------------ Módulos

// A torre inteira, apoiada em z=0 pelo ressalto e centrada em X.
// As abas entram DEPOIS do corte da cavidade — elas moram dentro do vão dela.
module tower() {
    union() {
        difference() {
            union() { stack_boss(); body_shell(); }
            cavity();
        }
        front_tabs();
    }
}

// Prisma de canto arredondado, centrado em XY, nascendo em z=0.
module rrect(w, d, r, h) {
    hull() for (sx = [-1, 1], sy = [-1, 1])
        translate([sx * (w / 2 - r), sy * (d / 2 - r), 0])
            cylinder(h = h, r = r);
}

// Ressalto de empilhamento (z 0..boss_h): prisma reto com chanfro de 45 na
// aresta de baixo. Rente ao plano da frente, recuado stack_clear no fundo e
// nos dois lados. É também a 1ª camada da impressão — maciça, sem brim.
// Os 0.02 a mais no topo entram POR DENTRO do corpo (68.2 contra os 70.6 do
// assento): não mudam nada por fora e são o que faz o CGAL fundir ressalto e
// corpo num sólido só — encostados só na face, saíam como dois volumes.
module stack_boss() {
    c = boss_lead;
    hull() {
        translate([0, boss_cy, 0])
            rrect(boss_w - 2 * c, boss_d - 2 * c, max(corner_r - c, 0.2), 0.01);
        translate([0, boss_cy, c])
            rrect(boss_w, boss_d, corner_r, boss_h - c + 0.02);
    }
}

// Corpo maciço (z boss_h..total_h), ainda sem cavidade: o assento (ledge plano
// de seat_ledge) em z=boss_h, a rampa de 45 subindo até skirt_top e daí pra
// cima o prisma externo cheio. Na FRENTE não há rampa nenhuma — o ressalto é
// rente ao plano da frente, então ali não existe saia pra pender.
module body_shell() {
    hull() {
        translate([0, seat_cy, boss_h])   rrect(seat_w, seat_d, corner_r, 0.01);
        translate([0, 0,      skirt_top]) rrect(ext_w,  ext_d,  corner_r, 0.01);
    }
    translate([0, 0, skirt_top]) rrect(ext_w, ext_d, corner_r, total_h - skirt_top);
}

// Cavidade: do topo do piso (z=floor_h) até acima da boca, saindo pela FRENTE.
// É o mesmo corte que abre o sulco — a frente não tem parede nenhuma pra furar.
module cavity() {
    over = 20;                                   // avanço pra fora da frente
    d    = (y_cav_back - (y_front - over));
    translate([0, y_cav_back - d / 2, floor_h])
        rrect(cav_w, d, inner_r, cav_h + 1);
}

// As duas abas em L da frente. Cada uma é o RETORNO da lateral pra dentro:
// nasce no piso (z=floor_h) e para em tab_top, 3.4mm abaixo da boca, pra deixar
// passar o ressalto da torre empilhada (ver ABA CORTADA NO TOPO no cabeçalho).
// A aresta interna, que é a que a mão encosta ao puxar o sleeve, sai com
// corner_r de raio.
module front_tabs() {
    for (s = [-1, 1]) scale([s, 1, 1]) tab();
}

module tab() {
    w = tab_x_out - x_open;
    translate([(x_open + tab_x_out) / 2, y_front + tab_depth / 2, floor_h])
        rrect(w, tab_depth, corner_r, tab_top - floor_h);
}

// PROVA DE ENCAIXE: as duas torres empilhadas na orientação de uso, com o passo
// REAL (stack_pitch = 147), que é o que enfia o ressalto da de cima nos 3mm de
// cima da cavidade da de baixo. TEM QUE SAIR VAZIO — se sair sólido, o ressalto
// está batendo em alguma coisa (o suspeito nº1 é o retorno da aba em L, que é
// justamente por isso que ele para em tab_top).
module fit_check() {
    intersection() {
        tower();
        translate([0, 0, stack_pitch]) tower();
    }
}
